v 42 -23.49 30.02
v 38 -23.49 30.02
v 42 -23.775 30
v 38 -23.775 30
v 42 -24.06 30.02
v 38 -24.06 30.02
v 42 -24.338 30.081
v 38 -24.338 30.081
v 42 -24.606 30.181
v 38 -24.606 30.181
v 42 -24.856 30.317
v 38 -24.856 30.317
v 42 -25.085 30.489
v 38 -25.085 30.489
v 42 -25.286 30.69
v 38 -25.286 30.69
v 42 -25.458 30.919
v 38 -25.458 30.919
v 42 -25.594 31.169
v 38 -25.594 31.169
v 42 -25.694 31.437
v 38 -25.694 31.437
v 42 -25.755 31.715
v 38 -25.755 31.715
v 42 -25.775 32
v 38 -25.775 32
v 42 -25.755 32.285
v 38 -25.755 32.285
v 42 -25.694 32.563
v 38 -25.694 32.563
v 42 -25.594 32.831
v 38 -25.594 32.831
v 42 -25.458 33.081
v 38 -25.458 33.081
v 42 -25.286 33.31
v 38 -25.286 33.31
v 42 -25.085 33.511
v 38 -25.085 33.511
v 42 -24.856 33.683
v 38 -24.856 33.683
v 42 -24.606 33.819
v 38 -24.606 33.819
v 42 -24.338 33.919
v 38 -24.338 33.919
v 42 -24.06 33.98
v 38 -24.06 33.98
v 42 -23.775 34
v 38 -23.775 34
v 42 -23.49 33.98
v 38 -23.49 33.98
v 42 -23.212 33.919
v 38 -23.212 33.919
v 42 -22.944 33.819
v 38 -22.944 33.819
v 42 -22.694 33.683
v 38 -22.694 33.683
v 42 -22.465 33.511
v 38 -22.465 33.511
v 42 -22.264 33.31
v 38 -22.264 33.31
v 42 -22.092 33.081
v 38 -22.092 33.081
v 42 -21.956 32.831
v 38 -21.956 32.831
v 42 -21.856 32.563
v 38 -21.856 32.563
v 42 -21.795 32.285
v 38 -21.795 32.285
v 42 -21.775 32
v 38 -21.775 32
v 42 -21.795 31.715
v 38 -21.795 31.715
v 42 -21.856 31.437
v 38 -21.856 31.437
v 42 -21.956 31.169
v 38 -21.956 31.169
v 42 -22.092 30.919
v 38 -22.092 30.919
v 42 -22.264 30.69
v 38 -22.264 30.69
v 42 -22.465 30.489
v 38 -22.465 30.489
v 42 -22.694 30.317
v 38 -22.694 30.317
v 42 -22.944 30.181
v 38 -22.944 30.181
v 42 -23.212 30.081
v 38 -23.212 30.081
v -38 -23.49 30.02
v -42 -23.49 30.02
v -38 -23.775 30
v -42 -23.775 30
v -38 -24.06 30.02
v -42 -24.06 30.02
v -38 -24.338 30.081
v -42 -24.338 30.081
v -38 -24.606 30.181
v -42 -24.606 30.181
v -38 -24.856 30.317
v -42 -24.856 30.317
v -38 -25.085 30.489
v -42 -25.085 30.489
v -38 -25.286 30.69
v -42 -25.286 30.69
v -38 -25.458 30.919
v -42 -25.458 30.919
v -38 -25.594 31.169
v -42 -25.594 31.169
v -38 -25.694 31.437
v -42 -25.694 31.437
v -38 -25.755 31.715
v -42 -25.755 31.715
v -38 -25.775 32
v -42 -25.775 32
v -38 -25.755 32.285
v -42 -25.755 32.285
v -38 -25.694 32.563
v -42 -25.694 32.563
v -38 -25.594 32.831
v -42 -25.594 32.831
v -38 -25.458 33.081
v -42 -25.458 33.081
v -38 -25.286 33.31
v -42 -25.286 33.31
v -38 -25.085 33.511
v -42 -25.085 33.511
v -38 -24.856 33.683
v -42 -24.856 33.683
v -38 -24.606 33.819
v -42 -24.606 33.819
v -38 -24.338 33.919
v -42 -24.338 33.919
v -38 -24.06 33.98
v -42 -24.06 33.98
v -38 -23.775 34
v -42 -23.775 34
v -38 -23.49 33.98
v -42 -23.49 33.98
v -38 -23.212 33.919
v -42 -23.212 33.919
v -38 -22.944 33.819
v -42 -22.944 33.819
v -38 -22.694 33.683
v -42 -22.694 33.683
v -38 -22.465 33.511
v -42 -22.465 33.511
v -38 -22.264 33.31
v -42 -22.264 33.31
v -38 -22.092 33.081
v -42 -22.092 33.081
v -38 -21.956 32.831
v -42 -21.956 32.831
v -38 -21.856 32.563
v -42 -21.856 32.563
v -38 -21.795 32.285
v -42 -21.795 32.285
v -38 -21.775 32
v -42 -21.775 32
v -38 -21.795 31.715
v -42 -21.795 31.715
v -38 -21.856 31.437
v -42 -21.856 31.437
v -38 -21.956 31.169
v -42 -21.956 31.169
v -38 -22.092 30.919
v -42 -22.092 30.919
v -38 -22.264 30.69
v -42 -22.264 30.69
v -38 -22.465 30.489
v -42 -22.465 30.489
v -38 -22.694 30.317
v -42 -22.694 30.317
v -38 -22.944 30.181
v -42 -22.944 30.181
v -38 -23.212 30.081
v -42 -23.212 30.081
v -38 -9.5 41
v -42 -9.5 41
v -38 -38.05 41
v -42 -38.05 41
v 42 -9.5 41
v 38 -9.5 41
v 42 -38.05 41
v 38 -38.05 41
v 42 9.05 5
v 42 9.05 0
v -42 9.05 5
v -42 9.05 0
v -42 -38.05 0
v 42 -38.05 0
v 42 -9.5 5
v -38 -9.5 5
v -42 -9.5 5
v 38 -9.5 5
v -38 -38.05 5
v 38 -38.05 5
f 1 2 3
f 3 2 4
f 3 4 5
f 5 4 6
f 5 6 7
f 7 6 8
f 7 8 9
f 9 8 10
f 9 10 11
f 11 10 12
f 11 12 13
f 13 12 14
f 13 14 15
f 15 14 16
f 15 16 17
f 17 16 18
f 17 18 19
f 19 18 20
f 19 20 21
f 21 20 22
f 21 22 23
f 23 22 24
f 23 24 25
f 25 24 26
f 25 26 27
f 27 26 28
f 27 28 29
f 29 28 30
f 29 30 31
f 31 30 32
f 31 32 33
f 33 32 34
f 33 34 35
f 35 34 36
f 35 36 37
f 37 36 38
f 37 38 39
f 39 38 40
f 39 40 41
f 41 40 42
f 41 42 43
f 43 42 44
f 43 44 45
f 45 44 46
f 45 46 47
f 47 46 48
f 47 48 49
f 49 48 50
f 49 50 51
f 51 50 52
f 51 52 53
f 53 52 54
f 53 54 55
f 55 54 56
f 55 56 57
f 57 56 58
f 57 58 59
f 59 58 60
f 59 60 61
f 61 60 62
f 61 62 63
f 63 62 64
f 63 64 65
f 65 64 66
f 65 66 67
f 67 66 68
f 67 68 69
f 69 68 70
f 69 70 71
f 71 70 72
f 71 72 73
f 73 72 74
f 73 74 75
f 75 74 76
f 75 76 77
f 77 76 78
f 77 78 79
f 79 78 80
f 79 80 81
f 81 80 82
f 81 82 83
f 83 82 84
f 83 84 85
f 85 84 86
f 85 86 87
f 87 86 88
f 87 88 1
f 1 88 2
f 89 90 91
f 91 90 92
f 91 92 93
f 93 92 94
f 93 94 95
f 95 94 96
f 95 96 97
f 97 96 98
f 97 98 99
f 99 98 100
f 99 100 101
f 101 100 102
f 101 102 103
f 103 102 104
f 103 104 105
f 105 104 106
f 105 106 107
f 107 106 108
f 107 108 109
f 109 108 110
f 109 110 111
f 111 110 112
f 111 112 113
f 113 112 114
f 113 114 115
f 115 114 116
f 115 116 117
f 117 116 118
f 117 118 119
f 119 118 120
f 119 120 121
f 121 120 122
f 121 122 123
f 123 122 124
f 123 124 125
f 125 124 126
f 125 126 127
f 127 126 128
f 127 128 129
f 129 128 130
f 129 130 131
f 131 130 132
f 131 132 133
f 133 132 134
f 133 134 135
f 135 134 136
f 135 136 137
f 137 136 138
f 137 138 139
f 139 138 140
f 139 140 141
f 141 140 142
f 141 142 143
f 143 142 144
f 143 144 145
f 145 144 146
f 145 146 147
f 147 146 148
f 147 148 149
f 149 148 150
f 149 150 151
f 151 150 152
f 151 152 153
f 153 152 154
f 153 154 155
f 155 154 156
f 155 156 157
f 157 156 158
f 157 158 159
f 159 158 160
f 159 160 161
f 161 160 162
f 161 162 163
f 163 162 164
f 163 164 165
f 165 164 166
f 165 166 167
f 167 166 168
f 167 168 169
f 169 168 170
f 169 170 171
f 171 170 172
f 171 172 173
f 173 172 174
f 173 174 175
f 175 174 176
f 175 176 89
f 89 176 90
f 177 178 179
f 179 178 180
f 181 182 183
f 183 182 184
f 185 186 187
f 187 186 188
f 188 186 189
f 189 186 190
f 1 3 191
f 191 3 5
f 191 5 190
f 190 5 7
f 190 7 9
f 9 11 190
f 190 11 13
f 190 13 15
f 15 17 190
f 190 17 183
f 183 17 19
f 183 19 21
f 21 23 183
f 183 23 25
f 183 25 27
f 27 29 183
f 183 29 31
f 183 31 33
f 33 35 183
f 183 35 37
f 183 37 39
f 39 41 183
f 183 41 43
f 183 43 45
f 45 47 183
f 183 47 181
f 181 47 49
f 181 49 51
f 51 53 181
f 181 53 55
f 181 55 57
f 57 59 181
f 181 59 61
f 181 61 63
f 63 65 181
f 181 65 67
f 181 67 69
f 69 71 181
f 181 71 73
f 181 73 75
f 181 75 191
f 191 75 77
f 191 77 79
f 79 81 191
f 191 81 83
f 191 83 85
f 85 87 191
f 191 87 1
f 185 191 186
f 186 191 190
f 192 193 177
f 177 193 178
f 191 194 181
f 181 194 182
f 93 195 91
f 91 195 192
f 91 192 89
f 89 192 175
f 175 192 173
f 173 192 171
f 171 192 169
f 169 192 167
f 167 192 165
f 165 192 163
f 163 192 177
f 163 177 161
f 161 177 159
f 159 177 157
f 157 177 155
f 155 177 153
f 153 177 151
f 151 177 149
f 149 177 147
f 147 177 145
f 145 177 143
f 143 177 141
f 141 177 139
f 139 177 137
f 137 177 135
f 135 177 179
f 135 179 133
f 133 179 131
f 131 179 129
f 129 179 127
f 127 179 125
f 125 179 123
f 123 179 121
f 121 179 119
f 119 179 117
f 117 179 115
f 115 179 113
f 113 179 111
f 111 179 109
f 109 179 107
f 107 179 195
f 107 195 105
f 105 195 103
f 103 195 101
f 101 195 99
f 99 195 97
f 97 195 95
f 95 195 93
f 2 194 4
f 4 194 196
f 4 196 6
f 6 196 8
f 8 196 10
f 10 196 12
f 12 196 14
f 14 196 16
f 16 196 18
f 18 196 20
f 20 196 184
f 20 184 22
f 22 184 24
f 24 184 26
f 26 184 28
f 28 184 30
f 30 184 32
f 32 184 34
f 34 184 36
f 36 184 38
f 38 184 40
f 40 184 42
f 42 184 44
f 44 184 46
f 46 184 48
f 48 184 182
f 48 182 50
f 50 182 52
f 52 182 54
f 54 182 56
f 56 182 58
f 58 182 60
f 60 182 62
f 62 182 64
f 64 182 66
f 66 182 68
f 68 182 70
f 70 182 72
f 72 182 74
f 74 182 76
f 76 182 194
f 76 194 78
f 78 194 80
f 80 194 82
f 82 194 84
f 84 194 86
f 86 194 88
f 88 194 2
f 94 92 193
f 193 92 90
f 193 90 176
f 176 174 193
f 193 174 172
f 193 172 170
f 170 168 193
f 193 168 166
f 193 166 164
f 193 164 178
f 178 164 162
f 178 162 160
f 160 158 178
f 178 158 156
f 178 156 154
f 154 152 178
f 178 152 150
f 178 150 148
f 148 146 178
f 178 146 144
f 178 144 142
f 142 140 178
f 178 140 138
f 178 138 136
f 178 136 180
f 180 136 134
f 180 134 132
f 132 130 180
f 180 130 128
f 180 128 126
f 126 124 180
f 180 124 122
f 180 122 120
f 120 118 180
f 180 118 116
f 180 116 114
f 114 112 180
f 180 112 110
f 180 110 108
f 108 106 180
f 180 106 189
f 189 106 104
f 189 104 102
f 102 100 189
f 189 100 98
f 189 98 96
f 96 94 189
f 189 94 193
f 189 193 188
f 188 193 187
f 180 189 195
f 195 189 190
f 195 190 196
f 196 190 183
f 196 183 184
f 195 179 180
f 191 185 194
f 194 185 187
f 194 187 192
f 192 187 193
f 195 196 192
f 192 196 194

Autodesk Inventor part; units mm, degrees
ref_plane "YZ Plane" through (0, 0, 0) normal (1, 0, 0) x (0, 1, 0)
ref_plane "XZ Plane" through (0, 0, 0) normal (0, 1, 0) x (-1, 0, 0)
ref_plane "XY Plane" through (0, 0, 0) normal (0, 0, 1) x (1, 0, 0)
sketch "Эскиз1" plane through (0, 0, 0) normal (0, 0, 1) x (1, 0, 0)
  line L0 (-38, 52.38) -> (38, 52.38) construction
  line L1 (38, 52.38) -> (38, -52.38) construction
  line L2 (38, -52.38) -> (-38, -52.38) construction
  line L3 (-38, -52.38) -> (-38, 52.38) construction
  line L4 (-26.6205, -33.05) -> (26.6205, -33.05) construction
  line L5 (26.6205, -33.05) -> (26.6205, 33.05) construction
  line L6 (26.6205, 33.05) -> (-26.6205, 33.05) construction
  line L7 (-26.6205, 33.05) -> (-26.6205, -33.05) construction
  line L8 (0, 33.05) -> (0, 38.05) construction
  line L9 (0, -33.05) -> (0, -38.05) construction
  line L10 (-38, 38.05) -> (38, 38.05)
  line L11 (38, 38.05) -> (38, -38.05)
  line L12 (38, -38.05) -> (-38, -38.05)
  line L13 (-38, -38.05) -> (-38, 38.05)
  dimension "d0" = 76
  dimension "d1" = 104.76
  dimension "d2" = 53.241
  dimension "d3" = 66.1
  dimension "d4" = 5
  dimension "d5" = 5
extrude "Выдавливание1" add sketch "Эскиз1" along normal blind 5
sketch "Эскиз2" plane through (0, 0, 5) normal (0, 0, 1) x (1, 0, 0)
  line L0 (38, 38.05) -> (38, -38.05) projected
  line L1 (-38, -38.05) -> (-38, 38.05) projected
  line L2 (-38, 38.05) -> (-38, -38.05) projected
  line L3 (-38, -38.05) -> (-42, -38.05)
  line L4 (38, 38.05) -> (42, 38.05)
  line L5 (42, -38.05) -> (42, 38.05)
  line L6 (-42, 38.05) -> (-42, -38.05)
  line L7 (-38, -38.05) -> (-38, 38.05)
  line L8 (38, 38.05) -> (-38, 38.05) projected
  line L9 (38, 38.05) -> (38, -38.05)
  line L10 (42, 38.05) -> (38, 38.05)
  line L11 (-38, 38.05) -> (-42, 38.05)
  line L12 (-42, -38.05) -> (-38, -38.05)
  line L13 (38, -38.05) -> (42, -38.05)
  point P0 (0, 0)
  dimension "d8" = 4
  dimension "d9" = 4
extrude "Выдавливание2" add sketch "Эскиз2" along normal blind 24 and the other way blind 5
sketch "Эскиз3" plane through (0, 0, 29) normal (0, 0, 1) x (1, 0, 0)
  line L0 (38, 38.05) -> (38, -38.05) projected
  line L1 (38, -38.05) -> (42, -38.05) projected
  line L2 (42, -38.05) -> (42, 38.05) projected
  line L3 (42, 38.05) -> (38, 38.05) projected
  line L4 (42, 9.5) -> (38, 9.5)
  line L5 (38, 9.5) -> (38, -9.5)
  line L6 (38, -9.5) -> (42, -9.5)
  line L7 (42, -9.5) -> (42, 9.5)
  line L8 (42, 9.5) -> (38, -9.5) construction
  line L9 (38, 9.5) -> (42, -9.5) construction
  line L10 (0, 0) -> (0, -84) construction
  line L11 (-42, 9.5) -> (-38, 9.5)
  line L12 (-38, -9.5) -> (-42, -9.5)
  line L13 (-38, 9.5) -> (-38, -9.5) construction
  line L14 (-38, 38.05) -> (-38, -38.05) construction
  line L15 (-42, 9.5) -> (-42, -9.5) construction
  line L16 (-42, 38.05) -> (-42, -38.05) construction
  line L17 (-38, 9.5) -> (-38, -9.5)
  line L18 (-42, -9.5) -> (-42, 9.5)
  point P0 (40, 0)
  dimension "d14" = 4
  dimension "d15" = 19
extrude "Выдавливание3" cut sketch "Эскиз3" against normal up to surface (24 mm away) contours L4 L2 L6 L0 | L11 L17 L12 L18
sketch "Эскиз4" plane through (-42, 38.05, 0) normal (0, 1, 0) x (1, 0, 0)
  line L0 (0, 0) -> (84, 0) projected
  line L1 (0, 0) -> (0, -29) projected
  line L2 (4, -29) -> (0, -29) projected
  line L3 (4, -29) -> (4, -5) projected
  line L4 (80, -5) -> (4, -5) projected
  line L5 (80, -29) -> (80, -5) projected
  line L6 (84, -29) -> (80, -29) projected
  line L7 (84, 0) -> (84, -29) projected
  point P0 (42, 0)
extrude "Выдавливание4" cut sketch "Эскиз4" against normal blind 29
sketch "Эскиз5" plane through (0, 0, 29) normal (0, 0, 1) x (1, 0, 0)
  line L0 (-38, -9.5) -> (-42, -9.5) projected
  line L1 (-42, -9.5) -> (-42, -38.05) projected
  line L2 (-42, -38.05) -> (-38, -38.05) projected
  line L3 (-38, -38.05) -> (-38, -9.5) projected
  line L4 (42, -9.5) -> (38, -9.5) projected
  line L5 (38, -9.5) -> (38, -38.05) projected
  line L6 (38, -38.05) -> (42, -38.05) projected
  line L7 (42, -38.05) -> (42, -9.5) projected
  point P0 (0, 0)
extrude "Выдавливание5" add sketch "Эскиз5" along normal blind 12
sketch "Эскиз6" plane through (42, -9.5, 5) normal (1, 0, 0) x (0, 0, -1)
  line L0 (5, 18.55) -> (0, 18.55) projected
  line L1 (0, 18.55) -> (0, 0) projected
  line L2 (0, 0) -> (-36, 0) projected
  line L3 (-36, -28.55) -> (-36, 0) projected
  line L4 (5, -28.55) -> (-36, -28.55) projected
  line L5 (5, 18.55) -> (5, -28.55) projected
  line L6 (-36, -28.55) -> (-36, 0) construction
  line L7 (-36, -14.275) -> (-27, -14.275) construction
  circle A0 centre (-27, -14.275) radius 2
  point P0 (5, 9.5)
  dimension "d22" = 9
  dimension "d23" = 4
extrude "Выдавливание6" cut sketch "Эскиз6" against normal up to surface (84 mm away) contours A0
properties part number "Ard for BR"
